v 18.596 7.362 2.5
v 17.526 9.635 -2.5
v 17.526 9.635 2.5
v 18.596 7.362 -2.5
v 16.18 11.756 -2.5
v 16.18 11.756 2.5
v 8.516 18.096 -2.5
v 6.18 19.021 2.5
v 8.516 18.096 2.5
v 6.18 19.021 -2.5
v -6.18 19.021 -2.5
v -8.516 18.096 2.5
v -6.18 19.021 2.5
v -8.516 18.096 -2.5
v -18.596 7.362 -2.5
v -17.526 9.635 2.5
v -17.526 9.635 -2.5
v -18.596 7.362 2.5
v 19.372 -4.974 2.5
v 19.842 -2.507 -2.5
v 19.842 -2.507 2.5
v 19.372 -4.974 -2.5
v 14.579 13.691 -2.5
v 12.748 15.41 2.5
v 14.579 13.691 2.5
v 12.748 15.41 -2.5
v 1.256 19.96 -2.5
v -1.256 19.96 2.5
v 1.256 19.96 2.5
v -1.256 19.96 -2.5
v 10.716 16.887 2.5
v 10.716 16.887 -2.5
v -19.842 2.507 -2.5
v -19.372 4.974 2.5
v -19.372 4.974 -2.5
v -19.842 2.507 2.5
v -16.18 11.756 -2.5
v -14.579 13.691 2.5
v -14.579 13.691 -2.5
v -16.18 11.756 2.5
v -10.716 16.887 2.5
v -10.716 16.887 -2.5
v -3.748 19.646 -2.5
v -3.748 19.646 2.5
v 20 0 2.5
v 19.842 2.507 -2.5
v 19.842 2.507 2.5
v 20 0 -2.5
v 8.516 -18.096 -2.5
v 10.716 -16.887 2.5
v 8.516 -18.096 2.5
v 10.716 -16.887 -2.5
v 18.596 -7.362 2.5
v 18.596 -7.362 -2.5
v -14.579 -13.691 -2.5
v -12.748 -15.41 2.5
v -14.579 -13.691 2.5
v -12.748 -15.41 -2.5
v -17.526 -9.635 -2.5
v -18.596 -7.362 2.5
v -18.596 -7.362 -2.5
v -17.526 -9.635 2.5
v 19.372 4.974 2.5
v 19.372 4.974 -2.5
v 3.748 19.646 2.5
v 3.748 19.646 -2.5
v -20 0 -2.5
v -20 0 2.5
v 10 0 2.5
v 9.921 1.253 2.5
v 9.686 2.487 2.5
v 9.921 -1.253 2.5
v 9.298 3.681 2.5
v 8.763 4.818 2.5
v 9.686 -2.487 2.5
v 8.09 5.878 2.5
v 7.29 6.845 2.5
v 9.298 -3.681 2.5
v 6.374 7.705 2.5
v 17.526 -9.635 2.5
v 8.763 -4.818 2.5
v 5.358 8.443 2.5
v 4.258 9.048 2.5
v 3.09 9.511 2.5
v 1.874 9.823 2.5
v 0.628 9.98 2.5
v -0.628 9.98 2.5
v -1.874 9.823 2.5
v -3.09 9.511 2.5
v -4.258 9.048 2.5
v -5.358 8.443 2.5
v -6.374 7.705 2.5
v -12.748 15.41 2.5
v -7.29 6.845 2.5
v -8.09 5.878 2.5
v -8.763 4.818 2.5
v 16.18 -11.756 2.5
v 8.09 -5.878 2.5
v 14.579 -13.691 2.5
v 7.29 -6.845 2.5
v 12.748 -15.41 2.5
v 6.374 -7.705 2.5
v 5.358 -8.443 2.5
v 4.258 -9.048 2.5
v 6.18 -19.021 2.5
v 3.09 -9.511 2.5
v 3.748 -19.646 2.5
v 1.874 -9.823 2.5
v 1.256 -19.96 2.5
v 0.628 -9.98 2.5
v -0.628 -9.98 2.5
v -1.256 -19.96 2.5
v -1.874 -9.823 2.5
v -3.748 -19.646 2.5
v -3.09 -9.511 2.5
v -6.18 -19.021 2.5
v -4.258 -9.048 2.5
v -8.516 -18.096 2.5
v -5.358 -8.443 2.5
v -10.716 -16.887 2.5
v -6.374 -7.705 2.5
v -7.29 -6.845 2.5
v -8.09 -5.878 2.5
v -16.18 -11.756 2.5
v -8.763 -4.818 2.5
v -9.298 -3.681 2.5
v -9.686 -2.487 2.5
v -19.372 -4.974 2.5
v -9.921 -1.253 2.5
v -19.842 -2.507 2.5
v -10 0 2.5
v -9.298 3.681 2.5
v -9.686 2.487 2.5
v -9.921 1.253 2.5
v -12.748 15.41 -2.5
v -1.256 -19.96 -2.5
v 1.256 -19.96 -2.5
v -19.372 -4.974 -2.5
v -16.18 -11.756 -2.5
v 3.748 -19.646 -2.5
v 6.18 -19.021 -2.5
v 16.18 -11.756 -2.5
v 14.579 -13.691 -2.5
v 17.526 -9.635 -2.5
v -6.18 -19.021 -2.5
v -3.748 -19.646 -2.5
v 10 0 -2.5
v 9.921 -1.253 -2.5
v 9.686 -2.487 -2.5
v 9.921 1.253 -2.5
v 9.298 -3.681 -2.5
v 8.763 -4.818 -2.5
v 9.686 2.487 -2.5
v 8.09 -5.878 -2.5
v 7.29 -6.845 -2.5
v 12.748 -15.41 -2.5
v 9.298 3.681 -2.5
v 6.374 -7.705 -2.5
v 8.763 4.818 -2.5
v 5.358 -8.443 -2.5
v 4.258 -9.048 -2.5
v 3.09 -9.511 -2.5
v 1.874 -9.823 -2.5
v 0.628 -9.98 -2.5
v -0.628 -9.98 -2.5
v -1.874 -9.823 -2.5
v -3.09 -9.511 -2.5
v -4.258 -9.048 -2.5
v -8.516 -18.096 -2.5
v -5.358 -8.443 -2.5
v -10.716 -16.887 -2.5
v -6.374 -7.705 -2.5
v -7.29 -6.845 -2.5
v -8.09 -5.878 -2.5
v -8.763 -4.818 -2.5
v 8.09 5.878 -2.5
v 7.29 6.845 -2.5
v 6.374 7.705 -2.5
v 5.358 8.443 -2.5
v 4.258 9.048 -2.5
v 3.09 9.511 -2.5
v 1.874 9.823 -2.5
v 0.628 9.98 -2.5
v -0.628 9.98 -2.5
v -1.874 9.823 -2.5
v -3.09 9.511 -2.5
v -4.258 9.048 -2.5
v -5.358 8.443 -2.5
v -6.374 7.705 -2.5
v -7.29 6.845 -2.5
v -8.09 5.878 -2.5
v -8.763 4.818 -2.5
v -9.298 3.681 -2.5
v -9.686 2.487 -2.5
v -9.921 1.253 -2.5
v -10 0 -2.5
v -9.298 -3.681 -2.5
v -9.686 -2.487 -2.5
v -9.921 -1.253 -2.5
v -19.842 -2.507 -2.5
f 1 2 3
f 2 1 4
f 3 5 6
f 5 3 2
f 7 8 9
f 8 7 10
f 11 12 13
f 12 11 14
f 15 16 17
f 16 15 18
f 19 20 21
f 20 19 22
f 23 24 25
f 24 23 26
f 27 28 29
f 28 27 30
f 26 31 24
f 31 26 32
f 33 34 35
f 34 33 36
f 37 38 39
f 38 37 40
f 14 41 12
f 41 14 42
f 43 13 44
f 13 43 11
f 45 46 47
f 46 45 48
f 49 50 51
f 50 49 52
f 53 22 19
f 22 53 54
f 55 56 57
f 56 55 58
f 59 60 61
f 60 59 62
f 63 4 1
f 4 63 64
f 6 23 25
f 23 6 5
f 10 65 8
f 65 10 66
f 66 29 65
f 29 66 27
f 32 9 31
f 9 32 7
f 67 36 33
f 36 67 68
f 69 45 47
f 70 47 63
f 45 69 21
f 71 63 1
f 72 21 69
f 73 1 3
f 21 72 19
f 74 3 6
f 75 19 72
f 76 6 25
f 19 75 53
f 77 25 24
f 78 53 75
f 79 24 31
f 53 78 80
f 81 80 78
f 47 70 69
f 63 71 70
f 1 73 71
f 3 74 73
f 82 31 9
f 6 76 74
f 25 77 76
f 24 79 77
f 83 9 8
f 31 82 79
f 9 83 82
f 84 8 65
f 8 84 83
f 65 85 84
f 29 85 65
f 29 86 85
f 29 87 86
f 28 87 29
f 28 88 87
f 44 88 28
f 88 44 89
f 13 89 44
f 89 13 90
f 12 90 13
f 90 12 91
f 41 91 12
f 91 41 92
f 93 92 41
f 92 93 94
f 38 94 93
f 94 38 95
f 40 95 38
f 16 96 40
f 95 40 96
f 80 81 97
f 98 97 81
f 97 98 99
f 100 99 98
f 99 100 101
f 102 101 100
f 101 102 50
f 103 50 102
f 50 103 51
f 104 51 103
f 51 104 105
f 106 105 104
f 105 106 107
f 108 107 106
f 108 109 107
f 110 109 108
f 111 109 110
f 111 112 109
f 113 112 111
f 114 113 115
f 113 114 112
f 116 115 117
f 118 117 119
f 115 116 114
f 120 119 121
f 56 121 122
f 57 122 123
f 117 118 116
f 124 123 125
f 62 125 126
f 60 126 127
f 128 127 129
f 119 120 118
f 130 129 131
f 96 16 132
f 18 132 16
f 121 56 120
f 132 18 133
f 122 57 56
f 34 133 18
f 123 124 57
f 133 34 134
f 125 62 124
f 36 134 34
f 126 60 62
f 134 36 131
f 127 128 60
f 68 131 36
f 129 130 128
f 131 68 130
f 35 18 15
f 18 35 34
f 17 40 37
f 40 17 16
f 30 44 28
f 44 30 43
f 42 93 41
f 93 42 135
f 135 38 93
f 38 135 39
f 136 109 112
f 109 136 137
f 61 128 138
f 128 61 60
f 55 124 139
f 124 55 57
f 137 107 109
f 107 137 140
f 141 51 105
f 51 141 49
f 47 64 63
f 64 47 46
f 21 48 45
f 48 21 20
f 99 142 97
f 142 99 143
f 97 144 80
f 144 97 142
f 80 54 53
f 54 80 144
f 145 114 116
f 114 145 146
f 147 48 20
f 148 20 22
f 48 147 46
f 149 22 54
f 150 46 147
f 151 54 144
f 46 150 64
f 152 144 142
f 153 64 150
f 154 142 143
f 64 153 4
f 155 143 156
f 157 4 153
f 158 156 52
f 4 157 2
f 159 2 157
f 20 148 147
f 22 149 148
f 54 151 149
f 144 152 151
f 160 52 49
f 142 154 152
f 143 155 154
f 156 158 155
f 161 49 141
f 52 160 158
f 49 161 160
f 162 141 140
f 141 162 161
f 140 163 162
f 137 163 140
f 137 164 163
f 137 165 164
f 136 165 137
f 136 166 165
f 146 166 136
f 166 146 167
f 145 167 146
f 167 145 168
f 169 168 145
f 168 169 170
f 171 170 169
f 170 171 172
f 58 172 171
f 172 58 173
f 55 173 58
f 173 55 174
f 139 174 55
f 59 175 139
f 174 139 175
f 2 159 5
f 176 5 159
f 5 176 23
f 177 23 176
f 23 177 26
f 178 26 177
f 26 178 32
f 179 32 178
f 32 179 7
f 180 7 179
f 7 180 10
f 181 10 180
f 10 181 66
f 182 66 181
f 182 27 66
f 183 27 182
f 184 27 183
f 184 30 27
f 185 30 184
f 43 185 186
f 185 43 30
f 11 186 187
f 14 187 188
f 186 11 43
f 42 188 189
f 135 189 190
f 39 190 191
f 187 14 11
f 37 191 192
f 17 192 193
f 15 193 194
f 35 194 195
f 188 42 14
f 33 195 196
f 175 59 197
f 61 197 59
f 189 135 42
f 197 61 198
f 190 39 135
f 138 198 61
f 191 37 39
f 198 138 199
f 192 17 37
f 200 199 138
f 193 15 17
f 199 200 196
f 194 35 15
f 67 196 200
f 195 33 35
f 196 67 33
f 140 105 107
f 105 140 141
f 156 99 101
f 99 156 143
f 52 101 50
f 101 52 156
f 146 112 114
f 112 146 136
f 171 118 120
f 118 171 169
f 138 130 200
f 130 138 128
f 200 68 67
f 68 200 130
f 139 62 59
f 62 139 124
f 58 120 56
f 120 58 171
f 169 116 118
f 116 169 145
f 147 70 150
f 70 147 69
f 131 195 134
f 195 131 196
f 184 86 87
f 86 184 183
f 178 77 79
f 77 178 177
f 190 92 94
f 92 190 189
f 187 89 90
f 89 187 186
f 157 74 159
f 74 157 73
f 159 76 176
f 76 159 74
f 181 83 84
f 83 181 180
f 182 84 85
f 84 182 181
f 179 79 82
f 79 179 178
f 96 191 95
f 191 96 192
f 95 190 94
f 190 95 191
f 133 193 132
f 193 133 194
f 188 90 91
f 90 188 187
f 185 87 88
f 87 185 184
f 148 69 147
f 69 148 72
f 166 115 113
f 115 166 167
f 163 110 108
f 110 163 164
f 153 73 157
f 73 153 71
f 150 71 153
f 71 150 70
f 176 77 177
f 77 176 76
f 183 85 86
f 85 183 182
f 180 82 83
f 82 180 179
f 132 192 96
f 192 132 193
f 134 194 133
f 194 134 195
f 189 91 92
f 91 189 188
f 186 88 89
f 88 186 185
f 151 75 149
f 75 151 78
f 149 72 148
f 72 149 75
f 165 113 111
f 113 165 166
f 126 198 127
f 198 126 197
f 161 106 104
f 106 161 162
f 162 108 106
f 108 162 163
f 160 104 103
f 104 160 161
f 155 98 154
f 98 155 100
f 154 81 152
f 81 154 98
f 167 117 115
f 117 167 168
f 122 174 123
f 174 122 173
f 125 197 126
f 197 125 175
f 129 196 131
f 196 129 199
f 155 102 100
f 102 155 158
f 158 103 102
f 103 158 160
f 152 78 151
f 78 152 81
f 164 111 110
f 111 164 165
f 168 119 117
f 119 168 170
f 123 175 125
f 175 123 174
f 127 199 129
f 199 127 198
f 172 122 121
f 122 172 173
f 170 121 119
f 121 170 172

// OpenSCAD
$fn = 50;


difference() {
	union() {
		translate(v = [0, 0, -2.5000000000]) {
			cylinder(h = 5, r = 20.0000000000);
		}
	}
	union() {
		translate(v = [0, 0, -100.0000000000]) {
			cylinder(h = 200, r = 10);
		}
	}
}
